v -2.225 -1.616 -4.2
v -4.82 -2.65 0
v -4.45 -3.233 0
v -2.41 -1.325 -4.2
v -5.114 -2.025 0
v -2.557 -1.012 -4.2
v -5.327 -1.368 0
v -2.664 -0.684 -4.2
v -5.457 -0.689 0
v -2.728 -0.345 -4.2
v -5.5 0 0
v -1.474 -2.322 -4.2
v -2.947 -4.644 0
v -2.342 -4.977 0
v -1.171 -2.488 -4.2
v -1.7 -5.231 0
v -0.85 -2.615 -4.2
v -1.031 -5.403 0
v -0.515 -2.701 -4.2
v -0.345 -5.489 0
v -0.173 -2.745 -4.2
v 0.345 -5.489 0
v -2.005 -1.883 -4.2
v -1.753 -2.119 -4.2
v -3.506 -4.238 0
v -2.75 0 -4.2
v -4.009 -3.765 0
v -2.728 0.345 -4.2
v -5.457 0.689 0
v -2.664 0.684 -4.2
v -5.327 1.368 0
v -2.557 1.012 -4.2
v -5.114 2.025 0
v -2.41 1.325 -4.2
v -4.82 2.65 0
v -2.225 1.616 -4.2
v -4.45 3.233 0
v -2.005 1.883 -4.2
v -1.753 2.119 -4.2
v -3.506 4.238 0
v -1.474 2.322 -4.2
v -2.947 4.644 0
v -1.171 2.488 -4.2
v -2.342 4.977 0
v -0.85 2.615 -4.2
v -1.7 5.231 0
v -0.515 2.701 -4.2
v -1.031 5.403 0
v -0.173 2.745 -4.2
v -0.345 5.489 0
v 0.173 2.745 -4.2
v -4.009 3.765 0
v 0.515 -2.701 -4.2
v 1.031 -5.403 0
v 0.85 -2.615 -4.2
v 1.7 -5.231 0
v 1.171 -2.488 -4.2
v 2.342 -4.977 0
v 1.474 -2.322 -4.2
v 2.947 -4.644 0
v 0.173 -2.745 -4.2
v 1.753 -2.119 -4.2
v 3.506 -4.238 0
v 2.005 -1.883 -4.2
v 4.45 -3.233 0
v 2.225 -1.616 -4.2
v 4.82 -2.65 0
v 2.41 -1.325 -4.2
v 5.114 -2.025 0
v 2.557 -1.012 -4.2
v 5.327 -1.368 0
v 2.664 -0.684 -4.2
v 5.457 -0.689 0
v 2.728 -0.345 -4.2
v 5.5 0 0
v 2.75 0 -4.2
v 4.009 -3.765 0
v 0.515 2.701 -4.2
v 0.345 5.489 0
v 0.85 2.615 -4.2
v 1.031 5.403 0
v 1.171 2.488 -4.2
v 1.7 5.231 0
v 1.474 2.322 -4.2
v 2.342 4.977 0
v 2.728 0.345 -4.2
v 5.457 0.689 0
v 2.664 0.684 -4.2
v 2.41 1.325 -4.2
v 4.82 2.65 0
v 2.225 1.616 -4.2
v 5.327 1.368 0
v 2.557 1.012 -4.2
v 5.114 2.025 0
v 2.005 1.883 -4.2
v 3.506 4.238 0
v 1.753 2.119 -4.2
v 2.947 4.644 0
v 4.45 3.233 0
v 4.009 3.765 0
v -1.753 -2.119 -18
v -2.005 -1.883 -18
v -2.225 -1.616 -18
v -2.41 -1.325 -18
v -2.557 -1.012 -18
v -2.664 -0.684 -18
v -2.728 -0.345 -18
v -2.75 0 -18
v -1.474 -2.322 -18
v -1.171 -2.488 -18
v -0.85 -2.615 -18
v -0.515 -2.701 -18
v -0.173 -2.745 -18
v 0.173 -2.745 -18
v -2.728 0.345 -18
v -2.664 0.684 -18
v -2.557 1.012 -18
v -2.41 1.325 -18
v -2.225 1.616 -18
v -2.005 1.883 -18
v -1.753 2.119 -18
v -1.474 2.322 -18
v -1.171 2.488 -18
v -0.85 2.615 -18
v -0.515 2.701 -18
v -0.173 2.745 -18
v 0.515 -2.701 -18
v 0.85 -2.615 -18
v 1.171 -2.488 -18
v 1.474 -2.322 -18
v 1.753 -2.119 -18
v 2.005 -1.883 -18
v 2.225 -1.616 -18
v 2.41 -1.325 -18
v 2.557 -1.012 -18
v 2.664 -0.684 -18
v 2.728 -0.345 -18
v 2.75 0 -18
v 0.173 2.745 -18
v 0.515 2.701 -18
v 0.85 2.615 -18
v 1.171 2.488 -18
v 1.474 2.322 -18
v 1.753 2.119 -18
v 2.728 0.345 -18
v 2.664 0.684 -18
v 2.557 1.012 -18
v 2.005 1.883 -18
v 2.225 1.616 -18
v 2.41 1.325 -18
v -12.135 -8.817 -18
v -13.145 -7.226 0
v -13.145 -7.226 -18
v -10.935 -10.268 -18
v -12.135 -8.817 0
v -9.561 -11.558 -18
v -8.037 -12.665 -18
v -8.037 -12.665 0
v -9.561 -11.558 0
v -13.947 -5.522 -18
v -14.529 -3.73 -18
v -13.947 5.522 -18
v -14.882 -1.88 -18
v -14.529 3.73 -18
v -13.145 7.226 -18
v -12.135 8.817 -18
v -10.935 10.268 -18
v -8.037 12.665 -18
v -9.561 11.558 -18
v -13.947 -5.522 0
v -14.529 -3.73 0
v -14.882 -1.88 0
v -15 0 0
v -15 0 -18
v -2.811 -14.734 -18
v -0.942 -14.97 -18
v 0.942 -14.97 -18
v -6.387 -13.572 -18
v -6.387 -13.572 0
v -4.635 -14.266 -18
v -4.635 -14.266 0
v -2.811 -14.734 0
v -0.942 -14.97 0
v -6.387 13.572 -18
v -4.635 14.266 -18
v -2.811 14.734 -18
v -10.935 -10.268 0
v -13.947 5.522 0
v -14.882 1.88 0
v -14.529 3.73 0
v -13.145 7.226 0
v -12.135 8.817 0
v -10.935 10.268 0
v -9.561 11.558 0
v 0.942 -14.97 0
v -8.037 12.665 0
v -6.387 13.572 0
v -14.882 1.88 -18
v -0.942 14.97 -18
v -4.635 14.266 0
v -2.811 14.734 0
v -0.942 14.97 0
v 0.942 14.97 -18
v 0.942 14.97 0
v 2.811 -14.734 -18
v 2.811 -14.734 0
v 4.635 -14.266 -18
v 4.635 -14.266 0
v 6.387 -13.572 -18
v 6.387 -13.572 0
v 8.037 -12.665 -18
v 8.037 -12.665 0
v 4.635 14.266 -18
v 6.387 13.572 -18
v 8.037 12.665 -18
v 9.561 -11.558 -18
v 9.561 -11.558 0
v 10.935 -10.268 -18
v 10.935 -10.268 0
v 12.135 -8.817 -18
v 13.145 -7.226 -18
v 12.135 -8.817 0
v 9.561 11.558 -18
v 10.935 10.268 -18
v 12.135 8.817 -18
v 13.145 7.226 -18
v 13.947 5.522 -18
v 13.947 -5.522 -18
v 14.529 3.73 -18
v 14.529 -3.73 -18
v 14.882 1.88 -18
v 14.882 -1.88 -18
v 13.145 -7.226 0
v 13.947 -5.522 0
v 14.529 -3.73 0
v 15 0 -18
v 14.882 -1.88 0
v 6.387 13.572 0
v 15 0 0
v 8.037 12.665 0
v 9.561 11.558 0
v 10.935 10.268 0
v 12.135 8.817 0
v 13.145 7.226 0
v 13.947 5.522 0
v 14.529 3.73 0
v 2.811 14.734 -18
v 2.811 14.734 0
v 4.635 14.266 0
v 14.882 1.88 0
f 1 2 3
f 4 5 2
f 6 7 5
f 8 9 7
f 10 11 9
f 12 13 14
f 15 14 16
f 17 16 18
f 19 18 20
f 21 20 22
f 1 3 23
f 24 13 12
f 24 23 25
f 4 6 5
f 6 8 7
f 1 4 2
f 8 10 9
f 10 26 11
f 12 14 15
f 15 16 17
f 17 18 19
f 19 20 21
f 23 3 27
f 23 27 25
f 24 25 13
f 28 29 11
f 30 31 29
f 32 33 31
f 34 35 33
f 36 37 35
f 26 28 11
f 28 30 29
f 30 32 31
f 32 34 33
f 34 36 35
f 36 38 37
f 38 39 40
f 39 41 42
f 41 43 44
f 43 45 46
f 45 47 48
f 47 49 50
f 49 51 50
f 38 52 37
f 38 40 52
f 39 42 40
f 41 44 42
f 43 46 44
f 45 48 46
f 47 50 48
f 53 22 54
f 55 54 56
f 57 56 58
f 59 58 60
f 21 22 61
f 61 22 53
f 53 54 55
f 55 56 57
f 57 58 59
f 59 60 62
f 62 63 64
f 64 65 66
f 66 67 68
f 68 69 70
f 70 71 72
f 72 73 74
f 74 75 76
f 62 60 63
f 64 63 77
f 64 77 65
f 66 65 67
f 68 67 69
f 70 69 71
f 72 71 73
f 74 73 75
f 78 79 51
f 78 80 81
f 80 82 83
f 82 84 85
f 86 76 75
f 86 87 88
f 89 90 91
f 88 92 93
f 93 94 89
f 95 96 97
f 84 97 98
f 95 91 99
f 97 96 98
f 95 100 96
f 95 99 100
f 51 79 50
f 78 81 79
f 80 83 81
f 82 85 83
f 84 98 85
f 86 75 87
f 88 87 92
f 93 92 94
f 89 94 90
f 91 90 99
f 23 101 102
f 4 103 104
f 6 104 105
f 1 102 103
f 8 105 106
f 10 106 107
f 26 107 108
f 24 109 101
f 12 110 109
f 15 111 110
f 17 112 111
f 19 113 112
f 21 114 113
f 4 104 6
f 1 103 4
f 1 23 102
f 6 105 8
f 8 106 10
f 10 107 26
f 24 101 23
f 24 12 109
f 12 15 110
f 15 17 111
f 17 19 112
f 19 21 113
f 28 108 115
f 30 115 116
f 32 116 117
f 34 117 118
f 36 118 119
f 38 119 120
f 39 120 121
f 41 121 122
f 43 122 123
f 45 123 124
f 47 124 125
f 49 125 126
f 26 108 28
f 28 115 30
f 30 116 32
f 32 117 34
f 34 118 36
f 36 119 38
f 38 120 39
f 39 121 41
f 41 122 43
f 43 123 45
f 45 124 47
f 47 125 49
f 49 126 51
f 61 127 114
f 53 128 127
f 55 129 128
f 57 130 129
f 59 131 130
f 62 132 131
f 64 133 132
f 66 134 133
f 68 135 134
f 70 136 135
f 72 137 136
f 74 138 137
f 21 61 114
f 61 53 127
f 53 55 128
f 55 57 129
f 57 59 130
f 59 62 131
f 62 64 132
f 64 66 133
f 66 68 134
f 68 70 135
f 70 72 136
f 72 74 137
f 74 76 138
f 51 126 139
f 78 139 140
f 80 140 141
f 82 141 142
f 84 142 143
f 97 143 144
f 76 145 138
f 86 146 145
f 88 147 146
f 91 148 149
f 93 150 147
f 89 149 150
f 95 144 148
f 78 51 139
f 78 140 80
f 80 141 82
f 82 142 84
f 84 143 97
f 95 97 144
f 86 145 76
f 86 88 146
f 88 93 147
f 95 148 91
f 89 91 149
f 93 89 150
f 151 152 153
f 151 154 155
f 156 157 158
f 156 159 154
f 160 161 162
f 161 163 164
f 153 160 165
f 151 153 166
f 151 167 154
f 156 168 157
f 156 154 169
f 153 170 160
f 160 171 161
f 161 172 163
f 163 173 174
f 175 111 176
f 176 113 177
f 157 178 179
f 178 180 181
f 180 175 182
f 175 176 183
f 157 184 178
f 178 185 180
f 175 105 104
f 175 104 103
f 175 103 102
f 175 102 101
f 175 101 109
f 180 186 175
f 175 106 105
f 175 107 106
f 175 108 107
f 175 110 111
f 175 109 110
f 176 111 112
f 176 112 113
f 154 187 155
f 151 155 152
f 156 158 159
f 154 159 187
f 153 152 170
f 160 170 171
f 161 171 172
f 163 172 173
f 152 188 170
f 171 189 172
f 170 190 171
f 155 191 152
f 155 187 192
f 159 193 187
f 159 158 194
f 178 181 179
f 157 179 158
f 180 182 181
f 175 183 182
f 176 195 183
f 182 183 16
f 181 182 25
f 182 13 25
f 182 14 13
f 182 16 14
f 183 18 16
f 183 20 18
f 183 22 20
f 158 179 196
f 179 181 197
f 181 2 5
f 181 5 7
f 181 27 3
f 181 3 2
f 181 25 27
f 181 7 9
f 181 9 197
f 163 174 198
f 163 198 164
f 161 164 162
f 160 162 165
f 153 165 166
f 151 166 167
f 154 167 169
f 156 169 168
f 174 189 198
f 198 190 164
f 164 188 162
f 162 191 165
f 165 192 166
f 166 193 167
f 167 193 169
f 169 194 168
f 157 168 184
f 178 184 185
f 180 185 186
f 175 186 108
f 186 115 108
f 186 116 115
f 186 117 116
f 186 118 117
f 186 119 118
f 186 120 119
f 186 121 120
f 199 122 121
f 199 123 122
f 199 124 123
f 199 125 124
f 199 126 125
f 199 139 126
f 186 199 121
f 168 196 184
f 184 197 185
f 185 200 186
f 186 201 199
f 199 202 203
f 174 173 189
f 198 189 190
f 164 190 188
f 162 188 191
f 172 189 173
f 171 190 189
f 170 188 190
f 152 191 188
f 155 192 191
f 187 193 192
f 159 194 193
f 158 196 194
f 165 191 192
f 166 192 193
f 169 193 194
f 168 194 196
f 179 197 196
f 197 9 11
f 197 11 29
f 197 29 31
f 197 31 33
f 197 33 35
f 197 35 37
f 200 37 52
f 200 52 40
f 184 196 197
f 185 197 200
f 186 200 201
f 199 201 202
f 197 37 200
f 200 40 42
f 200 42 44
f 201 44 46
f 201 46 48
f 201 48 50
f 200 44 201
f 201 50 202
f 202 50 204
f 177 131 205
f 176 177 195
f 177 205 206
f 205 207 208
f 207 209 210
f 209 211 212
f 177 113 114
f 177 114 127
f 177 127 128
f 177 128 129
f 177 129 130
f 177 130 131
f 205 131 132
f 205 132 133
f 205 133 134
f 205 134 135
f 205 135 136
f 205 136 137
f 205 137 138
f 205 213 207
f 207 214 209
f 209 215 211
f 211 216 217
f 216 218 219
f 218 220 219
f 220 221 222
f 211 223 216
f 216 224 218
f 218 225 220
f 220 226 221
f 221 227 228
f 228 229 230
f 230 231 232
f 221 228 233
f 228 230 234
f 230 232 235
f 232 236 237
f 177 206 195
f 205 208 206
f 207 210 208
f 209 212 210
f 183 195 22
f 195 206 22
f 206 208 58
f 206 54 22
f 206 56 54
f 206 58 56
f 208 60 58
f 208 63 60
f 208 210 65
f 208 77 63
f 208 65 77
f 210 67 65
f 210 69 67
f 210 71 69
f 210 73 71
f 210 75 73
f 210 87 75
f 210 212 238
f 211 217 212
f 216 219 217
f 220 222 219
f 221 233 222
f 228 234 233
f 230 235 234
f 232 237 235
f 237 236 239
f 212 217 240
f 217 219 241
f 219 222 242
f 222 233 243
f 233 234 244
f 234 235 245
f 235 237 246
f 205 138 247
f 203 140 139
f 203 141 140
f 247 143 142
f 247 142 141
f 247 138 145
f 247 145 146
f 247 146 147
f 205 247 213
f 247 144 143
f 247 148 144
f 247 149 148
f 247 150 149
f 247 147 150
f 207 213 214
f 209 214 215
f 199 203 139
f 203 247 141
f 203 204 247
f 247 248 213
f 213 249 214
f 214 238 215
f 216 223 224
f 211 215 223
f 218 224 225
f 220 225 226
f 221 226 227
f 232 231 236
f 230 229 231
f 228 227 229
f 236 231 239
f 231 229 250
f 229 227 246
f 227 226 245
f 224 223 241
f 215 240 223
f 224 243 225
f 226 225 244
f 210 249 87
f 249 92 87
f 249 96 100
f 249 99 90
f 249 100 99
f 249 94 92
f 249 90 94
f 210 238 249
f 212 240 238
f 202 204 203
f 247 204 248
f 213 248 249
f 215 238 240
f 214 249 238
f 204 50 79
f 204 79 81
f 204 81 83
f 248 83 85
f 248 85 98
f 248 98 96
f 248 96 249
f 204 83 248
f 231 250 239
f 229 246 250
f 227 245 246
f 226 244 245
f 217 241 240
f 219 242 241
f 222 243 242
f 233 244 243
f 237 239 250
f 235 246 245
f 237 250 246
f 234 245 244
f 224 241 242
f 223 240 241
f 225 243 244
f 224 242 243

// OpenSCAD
$fn = 50;

difference() {
	union() {
		translate(v = [0, 0, -18.0]) {
			cylinder(h = 18, r = 15.0);
		}
	}
	union() {
		translate(v = [0, 0, 0]) {
			rotate(a = [0, 0, 0]) {
				difference() {
					union() {
						translate(v = [0, 0, -21.0]) {
							cylinder(h = 21, r = 2.25);
						}
						translate(v = [0, 0, -4.2]) {
							cylinder(h = 4.2, r1 = 2.75, r2 = 5.5);
						}
						translate(v = [0, 0, -21.0]) {
							cylinder(h = 21, r = 2.75);
						}
						translate(v = [0, 0, -21.0]) {
							cylinder(h = 21, r = 2.25);
						}
					}
					union();
				}
			}
		}
	}
}
